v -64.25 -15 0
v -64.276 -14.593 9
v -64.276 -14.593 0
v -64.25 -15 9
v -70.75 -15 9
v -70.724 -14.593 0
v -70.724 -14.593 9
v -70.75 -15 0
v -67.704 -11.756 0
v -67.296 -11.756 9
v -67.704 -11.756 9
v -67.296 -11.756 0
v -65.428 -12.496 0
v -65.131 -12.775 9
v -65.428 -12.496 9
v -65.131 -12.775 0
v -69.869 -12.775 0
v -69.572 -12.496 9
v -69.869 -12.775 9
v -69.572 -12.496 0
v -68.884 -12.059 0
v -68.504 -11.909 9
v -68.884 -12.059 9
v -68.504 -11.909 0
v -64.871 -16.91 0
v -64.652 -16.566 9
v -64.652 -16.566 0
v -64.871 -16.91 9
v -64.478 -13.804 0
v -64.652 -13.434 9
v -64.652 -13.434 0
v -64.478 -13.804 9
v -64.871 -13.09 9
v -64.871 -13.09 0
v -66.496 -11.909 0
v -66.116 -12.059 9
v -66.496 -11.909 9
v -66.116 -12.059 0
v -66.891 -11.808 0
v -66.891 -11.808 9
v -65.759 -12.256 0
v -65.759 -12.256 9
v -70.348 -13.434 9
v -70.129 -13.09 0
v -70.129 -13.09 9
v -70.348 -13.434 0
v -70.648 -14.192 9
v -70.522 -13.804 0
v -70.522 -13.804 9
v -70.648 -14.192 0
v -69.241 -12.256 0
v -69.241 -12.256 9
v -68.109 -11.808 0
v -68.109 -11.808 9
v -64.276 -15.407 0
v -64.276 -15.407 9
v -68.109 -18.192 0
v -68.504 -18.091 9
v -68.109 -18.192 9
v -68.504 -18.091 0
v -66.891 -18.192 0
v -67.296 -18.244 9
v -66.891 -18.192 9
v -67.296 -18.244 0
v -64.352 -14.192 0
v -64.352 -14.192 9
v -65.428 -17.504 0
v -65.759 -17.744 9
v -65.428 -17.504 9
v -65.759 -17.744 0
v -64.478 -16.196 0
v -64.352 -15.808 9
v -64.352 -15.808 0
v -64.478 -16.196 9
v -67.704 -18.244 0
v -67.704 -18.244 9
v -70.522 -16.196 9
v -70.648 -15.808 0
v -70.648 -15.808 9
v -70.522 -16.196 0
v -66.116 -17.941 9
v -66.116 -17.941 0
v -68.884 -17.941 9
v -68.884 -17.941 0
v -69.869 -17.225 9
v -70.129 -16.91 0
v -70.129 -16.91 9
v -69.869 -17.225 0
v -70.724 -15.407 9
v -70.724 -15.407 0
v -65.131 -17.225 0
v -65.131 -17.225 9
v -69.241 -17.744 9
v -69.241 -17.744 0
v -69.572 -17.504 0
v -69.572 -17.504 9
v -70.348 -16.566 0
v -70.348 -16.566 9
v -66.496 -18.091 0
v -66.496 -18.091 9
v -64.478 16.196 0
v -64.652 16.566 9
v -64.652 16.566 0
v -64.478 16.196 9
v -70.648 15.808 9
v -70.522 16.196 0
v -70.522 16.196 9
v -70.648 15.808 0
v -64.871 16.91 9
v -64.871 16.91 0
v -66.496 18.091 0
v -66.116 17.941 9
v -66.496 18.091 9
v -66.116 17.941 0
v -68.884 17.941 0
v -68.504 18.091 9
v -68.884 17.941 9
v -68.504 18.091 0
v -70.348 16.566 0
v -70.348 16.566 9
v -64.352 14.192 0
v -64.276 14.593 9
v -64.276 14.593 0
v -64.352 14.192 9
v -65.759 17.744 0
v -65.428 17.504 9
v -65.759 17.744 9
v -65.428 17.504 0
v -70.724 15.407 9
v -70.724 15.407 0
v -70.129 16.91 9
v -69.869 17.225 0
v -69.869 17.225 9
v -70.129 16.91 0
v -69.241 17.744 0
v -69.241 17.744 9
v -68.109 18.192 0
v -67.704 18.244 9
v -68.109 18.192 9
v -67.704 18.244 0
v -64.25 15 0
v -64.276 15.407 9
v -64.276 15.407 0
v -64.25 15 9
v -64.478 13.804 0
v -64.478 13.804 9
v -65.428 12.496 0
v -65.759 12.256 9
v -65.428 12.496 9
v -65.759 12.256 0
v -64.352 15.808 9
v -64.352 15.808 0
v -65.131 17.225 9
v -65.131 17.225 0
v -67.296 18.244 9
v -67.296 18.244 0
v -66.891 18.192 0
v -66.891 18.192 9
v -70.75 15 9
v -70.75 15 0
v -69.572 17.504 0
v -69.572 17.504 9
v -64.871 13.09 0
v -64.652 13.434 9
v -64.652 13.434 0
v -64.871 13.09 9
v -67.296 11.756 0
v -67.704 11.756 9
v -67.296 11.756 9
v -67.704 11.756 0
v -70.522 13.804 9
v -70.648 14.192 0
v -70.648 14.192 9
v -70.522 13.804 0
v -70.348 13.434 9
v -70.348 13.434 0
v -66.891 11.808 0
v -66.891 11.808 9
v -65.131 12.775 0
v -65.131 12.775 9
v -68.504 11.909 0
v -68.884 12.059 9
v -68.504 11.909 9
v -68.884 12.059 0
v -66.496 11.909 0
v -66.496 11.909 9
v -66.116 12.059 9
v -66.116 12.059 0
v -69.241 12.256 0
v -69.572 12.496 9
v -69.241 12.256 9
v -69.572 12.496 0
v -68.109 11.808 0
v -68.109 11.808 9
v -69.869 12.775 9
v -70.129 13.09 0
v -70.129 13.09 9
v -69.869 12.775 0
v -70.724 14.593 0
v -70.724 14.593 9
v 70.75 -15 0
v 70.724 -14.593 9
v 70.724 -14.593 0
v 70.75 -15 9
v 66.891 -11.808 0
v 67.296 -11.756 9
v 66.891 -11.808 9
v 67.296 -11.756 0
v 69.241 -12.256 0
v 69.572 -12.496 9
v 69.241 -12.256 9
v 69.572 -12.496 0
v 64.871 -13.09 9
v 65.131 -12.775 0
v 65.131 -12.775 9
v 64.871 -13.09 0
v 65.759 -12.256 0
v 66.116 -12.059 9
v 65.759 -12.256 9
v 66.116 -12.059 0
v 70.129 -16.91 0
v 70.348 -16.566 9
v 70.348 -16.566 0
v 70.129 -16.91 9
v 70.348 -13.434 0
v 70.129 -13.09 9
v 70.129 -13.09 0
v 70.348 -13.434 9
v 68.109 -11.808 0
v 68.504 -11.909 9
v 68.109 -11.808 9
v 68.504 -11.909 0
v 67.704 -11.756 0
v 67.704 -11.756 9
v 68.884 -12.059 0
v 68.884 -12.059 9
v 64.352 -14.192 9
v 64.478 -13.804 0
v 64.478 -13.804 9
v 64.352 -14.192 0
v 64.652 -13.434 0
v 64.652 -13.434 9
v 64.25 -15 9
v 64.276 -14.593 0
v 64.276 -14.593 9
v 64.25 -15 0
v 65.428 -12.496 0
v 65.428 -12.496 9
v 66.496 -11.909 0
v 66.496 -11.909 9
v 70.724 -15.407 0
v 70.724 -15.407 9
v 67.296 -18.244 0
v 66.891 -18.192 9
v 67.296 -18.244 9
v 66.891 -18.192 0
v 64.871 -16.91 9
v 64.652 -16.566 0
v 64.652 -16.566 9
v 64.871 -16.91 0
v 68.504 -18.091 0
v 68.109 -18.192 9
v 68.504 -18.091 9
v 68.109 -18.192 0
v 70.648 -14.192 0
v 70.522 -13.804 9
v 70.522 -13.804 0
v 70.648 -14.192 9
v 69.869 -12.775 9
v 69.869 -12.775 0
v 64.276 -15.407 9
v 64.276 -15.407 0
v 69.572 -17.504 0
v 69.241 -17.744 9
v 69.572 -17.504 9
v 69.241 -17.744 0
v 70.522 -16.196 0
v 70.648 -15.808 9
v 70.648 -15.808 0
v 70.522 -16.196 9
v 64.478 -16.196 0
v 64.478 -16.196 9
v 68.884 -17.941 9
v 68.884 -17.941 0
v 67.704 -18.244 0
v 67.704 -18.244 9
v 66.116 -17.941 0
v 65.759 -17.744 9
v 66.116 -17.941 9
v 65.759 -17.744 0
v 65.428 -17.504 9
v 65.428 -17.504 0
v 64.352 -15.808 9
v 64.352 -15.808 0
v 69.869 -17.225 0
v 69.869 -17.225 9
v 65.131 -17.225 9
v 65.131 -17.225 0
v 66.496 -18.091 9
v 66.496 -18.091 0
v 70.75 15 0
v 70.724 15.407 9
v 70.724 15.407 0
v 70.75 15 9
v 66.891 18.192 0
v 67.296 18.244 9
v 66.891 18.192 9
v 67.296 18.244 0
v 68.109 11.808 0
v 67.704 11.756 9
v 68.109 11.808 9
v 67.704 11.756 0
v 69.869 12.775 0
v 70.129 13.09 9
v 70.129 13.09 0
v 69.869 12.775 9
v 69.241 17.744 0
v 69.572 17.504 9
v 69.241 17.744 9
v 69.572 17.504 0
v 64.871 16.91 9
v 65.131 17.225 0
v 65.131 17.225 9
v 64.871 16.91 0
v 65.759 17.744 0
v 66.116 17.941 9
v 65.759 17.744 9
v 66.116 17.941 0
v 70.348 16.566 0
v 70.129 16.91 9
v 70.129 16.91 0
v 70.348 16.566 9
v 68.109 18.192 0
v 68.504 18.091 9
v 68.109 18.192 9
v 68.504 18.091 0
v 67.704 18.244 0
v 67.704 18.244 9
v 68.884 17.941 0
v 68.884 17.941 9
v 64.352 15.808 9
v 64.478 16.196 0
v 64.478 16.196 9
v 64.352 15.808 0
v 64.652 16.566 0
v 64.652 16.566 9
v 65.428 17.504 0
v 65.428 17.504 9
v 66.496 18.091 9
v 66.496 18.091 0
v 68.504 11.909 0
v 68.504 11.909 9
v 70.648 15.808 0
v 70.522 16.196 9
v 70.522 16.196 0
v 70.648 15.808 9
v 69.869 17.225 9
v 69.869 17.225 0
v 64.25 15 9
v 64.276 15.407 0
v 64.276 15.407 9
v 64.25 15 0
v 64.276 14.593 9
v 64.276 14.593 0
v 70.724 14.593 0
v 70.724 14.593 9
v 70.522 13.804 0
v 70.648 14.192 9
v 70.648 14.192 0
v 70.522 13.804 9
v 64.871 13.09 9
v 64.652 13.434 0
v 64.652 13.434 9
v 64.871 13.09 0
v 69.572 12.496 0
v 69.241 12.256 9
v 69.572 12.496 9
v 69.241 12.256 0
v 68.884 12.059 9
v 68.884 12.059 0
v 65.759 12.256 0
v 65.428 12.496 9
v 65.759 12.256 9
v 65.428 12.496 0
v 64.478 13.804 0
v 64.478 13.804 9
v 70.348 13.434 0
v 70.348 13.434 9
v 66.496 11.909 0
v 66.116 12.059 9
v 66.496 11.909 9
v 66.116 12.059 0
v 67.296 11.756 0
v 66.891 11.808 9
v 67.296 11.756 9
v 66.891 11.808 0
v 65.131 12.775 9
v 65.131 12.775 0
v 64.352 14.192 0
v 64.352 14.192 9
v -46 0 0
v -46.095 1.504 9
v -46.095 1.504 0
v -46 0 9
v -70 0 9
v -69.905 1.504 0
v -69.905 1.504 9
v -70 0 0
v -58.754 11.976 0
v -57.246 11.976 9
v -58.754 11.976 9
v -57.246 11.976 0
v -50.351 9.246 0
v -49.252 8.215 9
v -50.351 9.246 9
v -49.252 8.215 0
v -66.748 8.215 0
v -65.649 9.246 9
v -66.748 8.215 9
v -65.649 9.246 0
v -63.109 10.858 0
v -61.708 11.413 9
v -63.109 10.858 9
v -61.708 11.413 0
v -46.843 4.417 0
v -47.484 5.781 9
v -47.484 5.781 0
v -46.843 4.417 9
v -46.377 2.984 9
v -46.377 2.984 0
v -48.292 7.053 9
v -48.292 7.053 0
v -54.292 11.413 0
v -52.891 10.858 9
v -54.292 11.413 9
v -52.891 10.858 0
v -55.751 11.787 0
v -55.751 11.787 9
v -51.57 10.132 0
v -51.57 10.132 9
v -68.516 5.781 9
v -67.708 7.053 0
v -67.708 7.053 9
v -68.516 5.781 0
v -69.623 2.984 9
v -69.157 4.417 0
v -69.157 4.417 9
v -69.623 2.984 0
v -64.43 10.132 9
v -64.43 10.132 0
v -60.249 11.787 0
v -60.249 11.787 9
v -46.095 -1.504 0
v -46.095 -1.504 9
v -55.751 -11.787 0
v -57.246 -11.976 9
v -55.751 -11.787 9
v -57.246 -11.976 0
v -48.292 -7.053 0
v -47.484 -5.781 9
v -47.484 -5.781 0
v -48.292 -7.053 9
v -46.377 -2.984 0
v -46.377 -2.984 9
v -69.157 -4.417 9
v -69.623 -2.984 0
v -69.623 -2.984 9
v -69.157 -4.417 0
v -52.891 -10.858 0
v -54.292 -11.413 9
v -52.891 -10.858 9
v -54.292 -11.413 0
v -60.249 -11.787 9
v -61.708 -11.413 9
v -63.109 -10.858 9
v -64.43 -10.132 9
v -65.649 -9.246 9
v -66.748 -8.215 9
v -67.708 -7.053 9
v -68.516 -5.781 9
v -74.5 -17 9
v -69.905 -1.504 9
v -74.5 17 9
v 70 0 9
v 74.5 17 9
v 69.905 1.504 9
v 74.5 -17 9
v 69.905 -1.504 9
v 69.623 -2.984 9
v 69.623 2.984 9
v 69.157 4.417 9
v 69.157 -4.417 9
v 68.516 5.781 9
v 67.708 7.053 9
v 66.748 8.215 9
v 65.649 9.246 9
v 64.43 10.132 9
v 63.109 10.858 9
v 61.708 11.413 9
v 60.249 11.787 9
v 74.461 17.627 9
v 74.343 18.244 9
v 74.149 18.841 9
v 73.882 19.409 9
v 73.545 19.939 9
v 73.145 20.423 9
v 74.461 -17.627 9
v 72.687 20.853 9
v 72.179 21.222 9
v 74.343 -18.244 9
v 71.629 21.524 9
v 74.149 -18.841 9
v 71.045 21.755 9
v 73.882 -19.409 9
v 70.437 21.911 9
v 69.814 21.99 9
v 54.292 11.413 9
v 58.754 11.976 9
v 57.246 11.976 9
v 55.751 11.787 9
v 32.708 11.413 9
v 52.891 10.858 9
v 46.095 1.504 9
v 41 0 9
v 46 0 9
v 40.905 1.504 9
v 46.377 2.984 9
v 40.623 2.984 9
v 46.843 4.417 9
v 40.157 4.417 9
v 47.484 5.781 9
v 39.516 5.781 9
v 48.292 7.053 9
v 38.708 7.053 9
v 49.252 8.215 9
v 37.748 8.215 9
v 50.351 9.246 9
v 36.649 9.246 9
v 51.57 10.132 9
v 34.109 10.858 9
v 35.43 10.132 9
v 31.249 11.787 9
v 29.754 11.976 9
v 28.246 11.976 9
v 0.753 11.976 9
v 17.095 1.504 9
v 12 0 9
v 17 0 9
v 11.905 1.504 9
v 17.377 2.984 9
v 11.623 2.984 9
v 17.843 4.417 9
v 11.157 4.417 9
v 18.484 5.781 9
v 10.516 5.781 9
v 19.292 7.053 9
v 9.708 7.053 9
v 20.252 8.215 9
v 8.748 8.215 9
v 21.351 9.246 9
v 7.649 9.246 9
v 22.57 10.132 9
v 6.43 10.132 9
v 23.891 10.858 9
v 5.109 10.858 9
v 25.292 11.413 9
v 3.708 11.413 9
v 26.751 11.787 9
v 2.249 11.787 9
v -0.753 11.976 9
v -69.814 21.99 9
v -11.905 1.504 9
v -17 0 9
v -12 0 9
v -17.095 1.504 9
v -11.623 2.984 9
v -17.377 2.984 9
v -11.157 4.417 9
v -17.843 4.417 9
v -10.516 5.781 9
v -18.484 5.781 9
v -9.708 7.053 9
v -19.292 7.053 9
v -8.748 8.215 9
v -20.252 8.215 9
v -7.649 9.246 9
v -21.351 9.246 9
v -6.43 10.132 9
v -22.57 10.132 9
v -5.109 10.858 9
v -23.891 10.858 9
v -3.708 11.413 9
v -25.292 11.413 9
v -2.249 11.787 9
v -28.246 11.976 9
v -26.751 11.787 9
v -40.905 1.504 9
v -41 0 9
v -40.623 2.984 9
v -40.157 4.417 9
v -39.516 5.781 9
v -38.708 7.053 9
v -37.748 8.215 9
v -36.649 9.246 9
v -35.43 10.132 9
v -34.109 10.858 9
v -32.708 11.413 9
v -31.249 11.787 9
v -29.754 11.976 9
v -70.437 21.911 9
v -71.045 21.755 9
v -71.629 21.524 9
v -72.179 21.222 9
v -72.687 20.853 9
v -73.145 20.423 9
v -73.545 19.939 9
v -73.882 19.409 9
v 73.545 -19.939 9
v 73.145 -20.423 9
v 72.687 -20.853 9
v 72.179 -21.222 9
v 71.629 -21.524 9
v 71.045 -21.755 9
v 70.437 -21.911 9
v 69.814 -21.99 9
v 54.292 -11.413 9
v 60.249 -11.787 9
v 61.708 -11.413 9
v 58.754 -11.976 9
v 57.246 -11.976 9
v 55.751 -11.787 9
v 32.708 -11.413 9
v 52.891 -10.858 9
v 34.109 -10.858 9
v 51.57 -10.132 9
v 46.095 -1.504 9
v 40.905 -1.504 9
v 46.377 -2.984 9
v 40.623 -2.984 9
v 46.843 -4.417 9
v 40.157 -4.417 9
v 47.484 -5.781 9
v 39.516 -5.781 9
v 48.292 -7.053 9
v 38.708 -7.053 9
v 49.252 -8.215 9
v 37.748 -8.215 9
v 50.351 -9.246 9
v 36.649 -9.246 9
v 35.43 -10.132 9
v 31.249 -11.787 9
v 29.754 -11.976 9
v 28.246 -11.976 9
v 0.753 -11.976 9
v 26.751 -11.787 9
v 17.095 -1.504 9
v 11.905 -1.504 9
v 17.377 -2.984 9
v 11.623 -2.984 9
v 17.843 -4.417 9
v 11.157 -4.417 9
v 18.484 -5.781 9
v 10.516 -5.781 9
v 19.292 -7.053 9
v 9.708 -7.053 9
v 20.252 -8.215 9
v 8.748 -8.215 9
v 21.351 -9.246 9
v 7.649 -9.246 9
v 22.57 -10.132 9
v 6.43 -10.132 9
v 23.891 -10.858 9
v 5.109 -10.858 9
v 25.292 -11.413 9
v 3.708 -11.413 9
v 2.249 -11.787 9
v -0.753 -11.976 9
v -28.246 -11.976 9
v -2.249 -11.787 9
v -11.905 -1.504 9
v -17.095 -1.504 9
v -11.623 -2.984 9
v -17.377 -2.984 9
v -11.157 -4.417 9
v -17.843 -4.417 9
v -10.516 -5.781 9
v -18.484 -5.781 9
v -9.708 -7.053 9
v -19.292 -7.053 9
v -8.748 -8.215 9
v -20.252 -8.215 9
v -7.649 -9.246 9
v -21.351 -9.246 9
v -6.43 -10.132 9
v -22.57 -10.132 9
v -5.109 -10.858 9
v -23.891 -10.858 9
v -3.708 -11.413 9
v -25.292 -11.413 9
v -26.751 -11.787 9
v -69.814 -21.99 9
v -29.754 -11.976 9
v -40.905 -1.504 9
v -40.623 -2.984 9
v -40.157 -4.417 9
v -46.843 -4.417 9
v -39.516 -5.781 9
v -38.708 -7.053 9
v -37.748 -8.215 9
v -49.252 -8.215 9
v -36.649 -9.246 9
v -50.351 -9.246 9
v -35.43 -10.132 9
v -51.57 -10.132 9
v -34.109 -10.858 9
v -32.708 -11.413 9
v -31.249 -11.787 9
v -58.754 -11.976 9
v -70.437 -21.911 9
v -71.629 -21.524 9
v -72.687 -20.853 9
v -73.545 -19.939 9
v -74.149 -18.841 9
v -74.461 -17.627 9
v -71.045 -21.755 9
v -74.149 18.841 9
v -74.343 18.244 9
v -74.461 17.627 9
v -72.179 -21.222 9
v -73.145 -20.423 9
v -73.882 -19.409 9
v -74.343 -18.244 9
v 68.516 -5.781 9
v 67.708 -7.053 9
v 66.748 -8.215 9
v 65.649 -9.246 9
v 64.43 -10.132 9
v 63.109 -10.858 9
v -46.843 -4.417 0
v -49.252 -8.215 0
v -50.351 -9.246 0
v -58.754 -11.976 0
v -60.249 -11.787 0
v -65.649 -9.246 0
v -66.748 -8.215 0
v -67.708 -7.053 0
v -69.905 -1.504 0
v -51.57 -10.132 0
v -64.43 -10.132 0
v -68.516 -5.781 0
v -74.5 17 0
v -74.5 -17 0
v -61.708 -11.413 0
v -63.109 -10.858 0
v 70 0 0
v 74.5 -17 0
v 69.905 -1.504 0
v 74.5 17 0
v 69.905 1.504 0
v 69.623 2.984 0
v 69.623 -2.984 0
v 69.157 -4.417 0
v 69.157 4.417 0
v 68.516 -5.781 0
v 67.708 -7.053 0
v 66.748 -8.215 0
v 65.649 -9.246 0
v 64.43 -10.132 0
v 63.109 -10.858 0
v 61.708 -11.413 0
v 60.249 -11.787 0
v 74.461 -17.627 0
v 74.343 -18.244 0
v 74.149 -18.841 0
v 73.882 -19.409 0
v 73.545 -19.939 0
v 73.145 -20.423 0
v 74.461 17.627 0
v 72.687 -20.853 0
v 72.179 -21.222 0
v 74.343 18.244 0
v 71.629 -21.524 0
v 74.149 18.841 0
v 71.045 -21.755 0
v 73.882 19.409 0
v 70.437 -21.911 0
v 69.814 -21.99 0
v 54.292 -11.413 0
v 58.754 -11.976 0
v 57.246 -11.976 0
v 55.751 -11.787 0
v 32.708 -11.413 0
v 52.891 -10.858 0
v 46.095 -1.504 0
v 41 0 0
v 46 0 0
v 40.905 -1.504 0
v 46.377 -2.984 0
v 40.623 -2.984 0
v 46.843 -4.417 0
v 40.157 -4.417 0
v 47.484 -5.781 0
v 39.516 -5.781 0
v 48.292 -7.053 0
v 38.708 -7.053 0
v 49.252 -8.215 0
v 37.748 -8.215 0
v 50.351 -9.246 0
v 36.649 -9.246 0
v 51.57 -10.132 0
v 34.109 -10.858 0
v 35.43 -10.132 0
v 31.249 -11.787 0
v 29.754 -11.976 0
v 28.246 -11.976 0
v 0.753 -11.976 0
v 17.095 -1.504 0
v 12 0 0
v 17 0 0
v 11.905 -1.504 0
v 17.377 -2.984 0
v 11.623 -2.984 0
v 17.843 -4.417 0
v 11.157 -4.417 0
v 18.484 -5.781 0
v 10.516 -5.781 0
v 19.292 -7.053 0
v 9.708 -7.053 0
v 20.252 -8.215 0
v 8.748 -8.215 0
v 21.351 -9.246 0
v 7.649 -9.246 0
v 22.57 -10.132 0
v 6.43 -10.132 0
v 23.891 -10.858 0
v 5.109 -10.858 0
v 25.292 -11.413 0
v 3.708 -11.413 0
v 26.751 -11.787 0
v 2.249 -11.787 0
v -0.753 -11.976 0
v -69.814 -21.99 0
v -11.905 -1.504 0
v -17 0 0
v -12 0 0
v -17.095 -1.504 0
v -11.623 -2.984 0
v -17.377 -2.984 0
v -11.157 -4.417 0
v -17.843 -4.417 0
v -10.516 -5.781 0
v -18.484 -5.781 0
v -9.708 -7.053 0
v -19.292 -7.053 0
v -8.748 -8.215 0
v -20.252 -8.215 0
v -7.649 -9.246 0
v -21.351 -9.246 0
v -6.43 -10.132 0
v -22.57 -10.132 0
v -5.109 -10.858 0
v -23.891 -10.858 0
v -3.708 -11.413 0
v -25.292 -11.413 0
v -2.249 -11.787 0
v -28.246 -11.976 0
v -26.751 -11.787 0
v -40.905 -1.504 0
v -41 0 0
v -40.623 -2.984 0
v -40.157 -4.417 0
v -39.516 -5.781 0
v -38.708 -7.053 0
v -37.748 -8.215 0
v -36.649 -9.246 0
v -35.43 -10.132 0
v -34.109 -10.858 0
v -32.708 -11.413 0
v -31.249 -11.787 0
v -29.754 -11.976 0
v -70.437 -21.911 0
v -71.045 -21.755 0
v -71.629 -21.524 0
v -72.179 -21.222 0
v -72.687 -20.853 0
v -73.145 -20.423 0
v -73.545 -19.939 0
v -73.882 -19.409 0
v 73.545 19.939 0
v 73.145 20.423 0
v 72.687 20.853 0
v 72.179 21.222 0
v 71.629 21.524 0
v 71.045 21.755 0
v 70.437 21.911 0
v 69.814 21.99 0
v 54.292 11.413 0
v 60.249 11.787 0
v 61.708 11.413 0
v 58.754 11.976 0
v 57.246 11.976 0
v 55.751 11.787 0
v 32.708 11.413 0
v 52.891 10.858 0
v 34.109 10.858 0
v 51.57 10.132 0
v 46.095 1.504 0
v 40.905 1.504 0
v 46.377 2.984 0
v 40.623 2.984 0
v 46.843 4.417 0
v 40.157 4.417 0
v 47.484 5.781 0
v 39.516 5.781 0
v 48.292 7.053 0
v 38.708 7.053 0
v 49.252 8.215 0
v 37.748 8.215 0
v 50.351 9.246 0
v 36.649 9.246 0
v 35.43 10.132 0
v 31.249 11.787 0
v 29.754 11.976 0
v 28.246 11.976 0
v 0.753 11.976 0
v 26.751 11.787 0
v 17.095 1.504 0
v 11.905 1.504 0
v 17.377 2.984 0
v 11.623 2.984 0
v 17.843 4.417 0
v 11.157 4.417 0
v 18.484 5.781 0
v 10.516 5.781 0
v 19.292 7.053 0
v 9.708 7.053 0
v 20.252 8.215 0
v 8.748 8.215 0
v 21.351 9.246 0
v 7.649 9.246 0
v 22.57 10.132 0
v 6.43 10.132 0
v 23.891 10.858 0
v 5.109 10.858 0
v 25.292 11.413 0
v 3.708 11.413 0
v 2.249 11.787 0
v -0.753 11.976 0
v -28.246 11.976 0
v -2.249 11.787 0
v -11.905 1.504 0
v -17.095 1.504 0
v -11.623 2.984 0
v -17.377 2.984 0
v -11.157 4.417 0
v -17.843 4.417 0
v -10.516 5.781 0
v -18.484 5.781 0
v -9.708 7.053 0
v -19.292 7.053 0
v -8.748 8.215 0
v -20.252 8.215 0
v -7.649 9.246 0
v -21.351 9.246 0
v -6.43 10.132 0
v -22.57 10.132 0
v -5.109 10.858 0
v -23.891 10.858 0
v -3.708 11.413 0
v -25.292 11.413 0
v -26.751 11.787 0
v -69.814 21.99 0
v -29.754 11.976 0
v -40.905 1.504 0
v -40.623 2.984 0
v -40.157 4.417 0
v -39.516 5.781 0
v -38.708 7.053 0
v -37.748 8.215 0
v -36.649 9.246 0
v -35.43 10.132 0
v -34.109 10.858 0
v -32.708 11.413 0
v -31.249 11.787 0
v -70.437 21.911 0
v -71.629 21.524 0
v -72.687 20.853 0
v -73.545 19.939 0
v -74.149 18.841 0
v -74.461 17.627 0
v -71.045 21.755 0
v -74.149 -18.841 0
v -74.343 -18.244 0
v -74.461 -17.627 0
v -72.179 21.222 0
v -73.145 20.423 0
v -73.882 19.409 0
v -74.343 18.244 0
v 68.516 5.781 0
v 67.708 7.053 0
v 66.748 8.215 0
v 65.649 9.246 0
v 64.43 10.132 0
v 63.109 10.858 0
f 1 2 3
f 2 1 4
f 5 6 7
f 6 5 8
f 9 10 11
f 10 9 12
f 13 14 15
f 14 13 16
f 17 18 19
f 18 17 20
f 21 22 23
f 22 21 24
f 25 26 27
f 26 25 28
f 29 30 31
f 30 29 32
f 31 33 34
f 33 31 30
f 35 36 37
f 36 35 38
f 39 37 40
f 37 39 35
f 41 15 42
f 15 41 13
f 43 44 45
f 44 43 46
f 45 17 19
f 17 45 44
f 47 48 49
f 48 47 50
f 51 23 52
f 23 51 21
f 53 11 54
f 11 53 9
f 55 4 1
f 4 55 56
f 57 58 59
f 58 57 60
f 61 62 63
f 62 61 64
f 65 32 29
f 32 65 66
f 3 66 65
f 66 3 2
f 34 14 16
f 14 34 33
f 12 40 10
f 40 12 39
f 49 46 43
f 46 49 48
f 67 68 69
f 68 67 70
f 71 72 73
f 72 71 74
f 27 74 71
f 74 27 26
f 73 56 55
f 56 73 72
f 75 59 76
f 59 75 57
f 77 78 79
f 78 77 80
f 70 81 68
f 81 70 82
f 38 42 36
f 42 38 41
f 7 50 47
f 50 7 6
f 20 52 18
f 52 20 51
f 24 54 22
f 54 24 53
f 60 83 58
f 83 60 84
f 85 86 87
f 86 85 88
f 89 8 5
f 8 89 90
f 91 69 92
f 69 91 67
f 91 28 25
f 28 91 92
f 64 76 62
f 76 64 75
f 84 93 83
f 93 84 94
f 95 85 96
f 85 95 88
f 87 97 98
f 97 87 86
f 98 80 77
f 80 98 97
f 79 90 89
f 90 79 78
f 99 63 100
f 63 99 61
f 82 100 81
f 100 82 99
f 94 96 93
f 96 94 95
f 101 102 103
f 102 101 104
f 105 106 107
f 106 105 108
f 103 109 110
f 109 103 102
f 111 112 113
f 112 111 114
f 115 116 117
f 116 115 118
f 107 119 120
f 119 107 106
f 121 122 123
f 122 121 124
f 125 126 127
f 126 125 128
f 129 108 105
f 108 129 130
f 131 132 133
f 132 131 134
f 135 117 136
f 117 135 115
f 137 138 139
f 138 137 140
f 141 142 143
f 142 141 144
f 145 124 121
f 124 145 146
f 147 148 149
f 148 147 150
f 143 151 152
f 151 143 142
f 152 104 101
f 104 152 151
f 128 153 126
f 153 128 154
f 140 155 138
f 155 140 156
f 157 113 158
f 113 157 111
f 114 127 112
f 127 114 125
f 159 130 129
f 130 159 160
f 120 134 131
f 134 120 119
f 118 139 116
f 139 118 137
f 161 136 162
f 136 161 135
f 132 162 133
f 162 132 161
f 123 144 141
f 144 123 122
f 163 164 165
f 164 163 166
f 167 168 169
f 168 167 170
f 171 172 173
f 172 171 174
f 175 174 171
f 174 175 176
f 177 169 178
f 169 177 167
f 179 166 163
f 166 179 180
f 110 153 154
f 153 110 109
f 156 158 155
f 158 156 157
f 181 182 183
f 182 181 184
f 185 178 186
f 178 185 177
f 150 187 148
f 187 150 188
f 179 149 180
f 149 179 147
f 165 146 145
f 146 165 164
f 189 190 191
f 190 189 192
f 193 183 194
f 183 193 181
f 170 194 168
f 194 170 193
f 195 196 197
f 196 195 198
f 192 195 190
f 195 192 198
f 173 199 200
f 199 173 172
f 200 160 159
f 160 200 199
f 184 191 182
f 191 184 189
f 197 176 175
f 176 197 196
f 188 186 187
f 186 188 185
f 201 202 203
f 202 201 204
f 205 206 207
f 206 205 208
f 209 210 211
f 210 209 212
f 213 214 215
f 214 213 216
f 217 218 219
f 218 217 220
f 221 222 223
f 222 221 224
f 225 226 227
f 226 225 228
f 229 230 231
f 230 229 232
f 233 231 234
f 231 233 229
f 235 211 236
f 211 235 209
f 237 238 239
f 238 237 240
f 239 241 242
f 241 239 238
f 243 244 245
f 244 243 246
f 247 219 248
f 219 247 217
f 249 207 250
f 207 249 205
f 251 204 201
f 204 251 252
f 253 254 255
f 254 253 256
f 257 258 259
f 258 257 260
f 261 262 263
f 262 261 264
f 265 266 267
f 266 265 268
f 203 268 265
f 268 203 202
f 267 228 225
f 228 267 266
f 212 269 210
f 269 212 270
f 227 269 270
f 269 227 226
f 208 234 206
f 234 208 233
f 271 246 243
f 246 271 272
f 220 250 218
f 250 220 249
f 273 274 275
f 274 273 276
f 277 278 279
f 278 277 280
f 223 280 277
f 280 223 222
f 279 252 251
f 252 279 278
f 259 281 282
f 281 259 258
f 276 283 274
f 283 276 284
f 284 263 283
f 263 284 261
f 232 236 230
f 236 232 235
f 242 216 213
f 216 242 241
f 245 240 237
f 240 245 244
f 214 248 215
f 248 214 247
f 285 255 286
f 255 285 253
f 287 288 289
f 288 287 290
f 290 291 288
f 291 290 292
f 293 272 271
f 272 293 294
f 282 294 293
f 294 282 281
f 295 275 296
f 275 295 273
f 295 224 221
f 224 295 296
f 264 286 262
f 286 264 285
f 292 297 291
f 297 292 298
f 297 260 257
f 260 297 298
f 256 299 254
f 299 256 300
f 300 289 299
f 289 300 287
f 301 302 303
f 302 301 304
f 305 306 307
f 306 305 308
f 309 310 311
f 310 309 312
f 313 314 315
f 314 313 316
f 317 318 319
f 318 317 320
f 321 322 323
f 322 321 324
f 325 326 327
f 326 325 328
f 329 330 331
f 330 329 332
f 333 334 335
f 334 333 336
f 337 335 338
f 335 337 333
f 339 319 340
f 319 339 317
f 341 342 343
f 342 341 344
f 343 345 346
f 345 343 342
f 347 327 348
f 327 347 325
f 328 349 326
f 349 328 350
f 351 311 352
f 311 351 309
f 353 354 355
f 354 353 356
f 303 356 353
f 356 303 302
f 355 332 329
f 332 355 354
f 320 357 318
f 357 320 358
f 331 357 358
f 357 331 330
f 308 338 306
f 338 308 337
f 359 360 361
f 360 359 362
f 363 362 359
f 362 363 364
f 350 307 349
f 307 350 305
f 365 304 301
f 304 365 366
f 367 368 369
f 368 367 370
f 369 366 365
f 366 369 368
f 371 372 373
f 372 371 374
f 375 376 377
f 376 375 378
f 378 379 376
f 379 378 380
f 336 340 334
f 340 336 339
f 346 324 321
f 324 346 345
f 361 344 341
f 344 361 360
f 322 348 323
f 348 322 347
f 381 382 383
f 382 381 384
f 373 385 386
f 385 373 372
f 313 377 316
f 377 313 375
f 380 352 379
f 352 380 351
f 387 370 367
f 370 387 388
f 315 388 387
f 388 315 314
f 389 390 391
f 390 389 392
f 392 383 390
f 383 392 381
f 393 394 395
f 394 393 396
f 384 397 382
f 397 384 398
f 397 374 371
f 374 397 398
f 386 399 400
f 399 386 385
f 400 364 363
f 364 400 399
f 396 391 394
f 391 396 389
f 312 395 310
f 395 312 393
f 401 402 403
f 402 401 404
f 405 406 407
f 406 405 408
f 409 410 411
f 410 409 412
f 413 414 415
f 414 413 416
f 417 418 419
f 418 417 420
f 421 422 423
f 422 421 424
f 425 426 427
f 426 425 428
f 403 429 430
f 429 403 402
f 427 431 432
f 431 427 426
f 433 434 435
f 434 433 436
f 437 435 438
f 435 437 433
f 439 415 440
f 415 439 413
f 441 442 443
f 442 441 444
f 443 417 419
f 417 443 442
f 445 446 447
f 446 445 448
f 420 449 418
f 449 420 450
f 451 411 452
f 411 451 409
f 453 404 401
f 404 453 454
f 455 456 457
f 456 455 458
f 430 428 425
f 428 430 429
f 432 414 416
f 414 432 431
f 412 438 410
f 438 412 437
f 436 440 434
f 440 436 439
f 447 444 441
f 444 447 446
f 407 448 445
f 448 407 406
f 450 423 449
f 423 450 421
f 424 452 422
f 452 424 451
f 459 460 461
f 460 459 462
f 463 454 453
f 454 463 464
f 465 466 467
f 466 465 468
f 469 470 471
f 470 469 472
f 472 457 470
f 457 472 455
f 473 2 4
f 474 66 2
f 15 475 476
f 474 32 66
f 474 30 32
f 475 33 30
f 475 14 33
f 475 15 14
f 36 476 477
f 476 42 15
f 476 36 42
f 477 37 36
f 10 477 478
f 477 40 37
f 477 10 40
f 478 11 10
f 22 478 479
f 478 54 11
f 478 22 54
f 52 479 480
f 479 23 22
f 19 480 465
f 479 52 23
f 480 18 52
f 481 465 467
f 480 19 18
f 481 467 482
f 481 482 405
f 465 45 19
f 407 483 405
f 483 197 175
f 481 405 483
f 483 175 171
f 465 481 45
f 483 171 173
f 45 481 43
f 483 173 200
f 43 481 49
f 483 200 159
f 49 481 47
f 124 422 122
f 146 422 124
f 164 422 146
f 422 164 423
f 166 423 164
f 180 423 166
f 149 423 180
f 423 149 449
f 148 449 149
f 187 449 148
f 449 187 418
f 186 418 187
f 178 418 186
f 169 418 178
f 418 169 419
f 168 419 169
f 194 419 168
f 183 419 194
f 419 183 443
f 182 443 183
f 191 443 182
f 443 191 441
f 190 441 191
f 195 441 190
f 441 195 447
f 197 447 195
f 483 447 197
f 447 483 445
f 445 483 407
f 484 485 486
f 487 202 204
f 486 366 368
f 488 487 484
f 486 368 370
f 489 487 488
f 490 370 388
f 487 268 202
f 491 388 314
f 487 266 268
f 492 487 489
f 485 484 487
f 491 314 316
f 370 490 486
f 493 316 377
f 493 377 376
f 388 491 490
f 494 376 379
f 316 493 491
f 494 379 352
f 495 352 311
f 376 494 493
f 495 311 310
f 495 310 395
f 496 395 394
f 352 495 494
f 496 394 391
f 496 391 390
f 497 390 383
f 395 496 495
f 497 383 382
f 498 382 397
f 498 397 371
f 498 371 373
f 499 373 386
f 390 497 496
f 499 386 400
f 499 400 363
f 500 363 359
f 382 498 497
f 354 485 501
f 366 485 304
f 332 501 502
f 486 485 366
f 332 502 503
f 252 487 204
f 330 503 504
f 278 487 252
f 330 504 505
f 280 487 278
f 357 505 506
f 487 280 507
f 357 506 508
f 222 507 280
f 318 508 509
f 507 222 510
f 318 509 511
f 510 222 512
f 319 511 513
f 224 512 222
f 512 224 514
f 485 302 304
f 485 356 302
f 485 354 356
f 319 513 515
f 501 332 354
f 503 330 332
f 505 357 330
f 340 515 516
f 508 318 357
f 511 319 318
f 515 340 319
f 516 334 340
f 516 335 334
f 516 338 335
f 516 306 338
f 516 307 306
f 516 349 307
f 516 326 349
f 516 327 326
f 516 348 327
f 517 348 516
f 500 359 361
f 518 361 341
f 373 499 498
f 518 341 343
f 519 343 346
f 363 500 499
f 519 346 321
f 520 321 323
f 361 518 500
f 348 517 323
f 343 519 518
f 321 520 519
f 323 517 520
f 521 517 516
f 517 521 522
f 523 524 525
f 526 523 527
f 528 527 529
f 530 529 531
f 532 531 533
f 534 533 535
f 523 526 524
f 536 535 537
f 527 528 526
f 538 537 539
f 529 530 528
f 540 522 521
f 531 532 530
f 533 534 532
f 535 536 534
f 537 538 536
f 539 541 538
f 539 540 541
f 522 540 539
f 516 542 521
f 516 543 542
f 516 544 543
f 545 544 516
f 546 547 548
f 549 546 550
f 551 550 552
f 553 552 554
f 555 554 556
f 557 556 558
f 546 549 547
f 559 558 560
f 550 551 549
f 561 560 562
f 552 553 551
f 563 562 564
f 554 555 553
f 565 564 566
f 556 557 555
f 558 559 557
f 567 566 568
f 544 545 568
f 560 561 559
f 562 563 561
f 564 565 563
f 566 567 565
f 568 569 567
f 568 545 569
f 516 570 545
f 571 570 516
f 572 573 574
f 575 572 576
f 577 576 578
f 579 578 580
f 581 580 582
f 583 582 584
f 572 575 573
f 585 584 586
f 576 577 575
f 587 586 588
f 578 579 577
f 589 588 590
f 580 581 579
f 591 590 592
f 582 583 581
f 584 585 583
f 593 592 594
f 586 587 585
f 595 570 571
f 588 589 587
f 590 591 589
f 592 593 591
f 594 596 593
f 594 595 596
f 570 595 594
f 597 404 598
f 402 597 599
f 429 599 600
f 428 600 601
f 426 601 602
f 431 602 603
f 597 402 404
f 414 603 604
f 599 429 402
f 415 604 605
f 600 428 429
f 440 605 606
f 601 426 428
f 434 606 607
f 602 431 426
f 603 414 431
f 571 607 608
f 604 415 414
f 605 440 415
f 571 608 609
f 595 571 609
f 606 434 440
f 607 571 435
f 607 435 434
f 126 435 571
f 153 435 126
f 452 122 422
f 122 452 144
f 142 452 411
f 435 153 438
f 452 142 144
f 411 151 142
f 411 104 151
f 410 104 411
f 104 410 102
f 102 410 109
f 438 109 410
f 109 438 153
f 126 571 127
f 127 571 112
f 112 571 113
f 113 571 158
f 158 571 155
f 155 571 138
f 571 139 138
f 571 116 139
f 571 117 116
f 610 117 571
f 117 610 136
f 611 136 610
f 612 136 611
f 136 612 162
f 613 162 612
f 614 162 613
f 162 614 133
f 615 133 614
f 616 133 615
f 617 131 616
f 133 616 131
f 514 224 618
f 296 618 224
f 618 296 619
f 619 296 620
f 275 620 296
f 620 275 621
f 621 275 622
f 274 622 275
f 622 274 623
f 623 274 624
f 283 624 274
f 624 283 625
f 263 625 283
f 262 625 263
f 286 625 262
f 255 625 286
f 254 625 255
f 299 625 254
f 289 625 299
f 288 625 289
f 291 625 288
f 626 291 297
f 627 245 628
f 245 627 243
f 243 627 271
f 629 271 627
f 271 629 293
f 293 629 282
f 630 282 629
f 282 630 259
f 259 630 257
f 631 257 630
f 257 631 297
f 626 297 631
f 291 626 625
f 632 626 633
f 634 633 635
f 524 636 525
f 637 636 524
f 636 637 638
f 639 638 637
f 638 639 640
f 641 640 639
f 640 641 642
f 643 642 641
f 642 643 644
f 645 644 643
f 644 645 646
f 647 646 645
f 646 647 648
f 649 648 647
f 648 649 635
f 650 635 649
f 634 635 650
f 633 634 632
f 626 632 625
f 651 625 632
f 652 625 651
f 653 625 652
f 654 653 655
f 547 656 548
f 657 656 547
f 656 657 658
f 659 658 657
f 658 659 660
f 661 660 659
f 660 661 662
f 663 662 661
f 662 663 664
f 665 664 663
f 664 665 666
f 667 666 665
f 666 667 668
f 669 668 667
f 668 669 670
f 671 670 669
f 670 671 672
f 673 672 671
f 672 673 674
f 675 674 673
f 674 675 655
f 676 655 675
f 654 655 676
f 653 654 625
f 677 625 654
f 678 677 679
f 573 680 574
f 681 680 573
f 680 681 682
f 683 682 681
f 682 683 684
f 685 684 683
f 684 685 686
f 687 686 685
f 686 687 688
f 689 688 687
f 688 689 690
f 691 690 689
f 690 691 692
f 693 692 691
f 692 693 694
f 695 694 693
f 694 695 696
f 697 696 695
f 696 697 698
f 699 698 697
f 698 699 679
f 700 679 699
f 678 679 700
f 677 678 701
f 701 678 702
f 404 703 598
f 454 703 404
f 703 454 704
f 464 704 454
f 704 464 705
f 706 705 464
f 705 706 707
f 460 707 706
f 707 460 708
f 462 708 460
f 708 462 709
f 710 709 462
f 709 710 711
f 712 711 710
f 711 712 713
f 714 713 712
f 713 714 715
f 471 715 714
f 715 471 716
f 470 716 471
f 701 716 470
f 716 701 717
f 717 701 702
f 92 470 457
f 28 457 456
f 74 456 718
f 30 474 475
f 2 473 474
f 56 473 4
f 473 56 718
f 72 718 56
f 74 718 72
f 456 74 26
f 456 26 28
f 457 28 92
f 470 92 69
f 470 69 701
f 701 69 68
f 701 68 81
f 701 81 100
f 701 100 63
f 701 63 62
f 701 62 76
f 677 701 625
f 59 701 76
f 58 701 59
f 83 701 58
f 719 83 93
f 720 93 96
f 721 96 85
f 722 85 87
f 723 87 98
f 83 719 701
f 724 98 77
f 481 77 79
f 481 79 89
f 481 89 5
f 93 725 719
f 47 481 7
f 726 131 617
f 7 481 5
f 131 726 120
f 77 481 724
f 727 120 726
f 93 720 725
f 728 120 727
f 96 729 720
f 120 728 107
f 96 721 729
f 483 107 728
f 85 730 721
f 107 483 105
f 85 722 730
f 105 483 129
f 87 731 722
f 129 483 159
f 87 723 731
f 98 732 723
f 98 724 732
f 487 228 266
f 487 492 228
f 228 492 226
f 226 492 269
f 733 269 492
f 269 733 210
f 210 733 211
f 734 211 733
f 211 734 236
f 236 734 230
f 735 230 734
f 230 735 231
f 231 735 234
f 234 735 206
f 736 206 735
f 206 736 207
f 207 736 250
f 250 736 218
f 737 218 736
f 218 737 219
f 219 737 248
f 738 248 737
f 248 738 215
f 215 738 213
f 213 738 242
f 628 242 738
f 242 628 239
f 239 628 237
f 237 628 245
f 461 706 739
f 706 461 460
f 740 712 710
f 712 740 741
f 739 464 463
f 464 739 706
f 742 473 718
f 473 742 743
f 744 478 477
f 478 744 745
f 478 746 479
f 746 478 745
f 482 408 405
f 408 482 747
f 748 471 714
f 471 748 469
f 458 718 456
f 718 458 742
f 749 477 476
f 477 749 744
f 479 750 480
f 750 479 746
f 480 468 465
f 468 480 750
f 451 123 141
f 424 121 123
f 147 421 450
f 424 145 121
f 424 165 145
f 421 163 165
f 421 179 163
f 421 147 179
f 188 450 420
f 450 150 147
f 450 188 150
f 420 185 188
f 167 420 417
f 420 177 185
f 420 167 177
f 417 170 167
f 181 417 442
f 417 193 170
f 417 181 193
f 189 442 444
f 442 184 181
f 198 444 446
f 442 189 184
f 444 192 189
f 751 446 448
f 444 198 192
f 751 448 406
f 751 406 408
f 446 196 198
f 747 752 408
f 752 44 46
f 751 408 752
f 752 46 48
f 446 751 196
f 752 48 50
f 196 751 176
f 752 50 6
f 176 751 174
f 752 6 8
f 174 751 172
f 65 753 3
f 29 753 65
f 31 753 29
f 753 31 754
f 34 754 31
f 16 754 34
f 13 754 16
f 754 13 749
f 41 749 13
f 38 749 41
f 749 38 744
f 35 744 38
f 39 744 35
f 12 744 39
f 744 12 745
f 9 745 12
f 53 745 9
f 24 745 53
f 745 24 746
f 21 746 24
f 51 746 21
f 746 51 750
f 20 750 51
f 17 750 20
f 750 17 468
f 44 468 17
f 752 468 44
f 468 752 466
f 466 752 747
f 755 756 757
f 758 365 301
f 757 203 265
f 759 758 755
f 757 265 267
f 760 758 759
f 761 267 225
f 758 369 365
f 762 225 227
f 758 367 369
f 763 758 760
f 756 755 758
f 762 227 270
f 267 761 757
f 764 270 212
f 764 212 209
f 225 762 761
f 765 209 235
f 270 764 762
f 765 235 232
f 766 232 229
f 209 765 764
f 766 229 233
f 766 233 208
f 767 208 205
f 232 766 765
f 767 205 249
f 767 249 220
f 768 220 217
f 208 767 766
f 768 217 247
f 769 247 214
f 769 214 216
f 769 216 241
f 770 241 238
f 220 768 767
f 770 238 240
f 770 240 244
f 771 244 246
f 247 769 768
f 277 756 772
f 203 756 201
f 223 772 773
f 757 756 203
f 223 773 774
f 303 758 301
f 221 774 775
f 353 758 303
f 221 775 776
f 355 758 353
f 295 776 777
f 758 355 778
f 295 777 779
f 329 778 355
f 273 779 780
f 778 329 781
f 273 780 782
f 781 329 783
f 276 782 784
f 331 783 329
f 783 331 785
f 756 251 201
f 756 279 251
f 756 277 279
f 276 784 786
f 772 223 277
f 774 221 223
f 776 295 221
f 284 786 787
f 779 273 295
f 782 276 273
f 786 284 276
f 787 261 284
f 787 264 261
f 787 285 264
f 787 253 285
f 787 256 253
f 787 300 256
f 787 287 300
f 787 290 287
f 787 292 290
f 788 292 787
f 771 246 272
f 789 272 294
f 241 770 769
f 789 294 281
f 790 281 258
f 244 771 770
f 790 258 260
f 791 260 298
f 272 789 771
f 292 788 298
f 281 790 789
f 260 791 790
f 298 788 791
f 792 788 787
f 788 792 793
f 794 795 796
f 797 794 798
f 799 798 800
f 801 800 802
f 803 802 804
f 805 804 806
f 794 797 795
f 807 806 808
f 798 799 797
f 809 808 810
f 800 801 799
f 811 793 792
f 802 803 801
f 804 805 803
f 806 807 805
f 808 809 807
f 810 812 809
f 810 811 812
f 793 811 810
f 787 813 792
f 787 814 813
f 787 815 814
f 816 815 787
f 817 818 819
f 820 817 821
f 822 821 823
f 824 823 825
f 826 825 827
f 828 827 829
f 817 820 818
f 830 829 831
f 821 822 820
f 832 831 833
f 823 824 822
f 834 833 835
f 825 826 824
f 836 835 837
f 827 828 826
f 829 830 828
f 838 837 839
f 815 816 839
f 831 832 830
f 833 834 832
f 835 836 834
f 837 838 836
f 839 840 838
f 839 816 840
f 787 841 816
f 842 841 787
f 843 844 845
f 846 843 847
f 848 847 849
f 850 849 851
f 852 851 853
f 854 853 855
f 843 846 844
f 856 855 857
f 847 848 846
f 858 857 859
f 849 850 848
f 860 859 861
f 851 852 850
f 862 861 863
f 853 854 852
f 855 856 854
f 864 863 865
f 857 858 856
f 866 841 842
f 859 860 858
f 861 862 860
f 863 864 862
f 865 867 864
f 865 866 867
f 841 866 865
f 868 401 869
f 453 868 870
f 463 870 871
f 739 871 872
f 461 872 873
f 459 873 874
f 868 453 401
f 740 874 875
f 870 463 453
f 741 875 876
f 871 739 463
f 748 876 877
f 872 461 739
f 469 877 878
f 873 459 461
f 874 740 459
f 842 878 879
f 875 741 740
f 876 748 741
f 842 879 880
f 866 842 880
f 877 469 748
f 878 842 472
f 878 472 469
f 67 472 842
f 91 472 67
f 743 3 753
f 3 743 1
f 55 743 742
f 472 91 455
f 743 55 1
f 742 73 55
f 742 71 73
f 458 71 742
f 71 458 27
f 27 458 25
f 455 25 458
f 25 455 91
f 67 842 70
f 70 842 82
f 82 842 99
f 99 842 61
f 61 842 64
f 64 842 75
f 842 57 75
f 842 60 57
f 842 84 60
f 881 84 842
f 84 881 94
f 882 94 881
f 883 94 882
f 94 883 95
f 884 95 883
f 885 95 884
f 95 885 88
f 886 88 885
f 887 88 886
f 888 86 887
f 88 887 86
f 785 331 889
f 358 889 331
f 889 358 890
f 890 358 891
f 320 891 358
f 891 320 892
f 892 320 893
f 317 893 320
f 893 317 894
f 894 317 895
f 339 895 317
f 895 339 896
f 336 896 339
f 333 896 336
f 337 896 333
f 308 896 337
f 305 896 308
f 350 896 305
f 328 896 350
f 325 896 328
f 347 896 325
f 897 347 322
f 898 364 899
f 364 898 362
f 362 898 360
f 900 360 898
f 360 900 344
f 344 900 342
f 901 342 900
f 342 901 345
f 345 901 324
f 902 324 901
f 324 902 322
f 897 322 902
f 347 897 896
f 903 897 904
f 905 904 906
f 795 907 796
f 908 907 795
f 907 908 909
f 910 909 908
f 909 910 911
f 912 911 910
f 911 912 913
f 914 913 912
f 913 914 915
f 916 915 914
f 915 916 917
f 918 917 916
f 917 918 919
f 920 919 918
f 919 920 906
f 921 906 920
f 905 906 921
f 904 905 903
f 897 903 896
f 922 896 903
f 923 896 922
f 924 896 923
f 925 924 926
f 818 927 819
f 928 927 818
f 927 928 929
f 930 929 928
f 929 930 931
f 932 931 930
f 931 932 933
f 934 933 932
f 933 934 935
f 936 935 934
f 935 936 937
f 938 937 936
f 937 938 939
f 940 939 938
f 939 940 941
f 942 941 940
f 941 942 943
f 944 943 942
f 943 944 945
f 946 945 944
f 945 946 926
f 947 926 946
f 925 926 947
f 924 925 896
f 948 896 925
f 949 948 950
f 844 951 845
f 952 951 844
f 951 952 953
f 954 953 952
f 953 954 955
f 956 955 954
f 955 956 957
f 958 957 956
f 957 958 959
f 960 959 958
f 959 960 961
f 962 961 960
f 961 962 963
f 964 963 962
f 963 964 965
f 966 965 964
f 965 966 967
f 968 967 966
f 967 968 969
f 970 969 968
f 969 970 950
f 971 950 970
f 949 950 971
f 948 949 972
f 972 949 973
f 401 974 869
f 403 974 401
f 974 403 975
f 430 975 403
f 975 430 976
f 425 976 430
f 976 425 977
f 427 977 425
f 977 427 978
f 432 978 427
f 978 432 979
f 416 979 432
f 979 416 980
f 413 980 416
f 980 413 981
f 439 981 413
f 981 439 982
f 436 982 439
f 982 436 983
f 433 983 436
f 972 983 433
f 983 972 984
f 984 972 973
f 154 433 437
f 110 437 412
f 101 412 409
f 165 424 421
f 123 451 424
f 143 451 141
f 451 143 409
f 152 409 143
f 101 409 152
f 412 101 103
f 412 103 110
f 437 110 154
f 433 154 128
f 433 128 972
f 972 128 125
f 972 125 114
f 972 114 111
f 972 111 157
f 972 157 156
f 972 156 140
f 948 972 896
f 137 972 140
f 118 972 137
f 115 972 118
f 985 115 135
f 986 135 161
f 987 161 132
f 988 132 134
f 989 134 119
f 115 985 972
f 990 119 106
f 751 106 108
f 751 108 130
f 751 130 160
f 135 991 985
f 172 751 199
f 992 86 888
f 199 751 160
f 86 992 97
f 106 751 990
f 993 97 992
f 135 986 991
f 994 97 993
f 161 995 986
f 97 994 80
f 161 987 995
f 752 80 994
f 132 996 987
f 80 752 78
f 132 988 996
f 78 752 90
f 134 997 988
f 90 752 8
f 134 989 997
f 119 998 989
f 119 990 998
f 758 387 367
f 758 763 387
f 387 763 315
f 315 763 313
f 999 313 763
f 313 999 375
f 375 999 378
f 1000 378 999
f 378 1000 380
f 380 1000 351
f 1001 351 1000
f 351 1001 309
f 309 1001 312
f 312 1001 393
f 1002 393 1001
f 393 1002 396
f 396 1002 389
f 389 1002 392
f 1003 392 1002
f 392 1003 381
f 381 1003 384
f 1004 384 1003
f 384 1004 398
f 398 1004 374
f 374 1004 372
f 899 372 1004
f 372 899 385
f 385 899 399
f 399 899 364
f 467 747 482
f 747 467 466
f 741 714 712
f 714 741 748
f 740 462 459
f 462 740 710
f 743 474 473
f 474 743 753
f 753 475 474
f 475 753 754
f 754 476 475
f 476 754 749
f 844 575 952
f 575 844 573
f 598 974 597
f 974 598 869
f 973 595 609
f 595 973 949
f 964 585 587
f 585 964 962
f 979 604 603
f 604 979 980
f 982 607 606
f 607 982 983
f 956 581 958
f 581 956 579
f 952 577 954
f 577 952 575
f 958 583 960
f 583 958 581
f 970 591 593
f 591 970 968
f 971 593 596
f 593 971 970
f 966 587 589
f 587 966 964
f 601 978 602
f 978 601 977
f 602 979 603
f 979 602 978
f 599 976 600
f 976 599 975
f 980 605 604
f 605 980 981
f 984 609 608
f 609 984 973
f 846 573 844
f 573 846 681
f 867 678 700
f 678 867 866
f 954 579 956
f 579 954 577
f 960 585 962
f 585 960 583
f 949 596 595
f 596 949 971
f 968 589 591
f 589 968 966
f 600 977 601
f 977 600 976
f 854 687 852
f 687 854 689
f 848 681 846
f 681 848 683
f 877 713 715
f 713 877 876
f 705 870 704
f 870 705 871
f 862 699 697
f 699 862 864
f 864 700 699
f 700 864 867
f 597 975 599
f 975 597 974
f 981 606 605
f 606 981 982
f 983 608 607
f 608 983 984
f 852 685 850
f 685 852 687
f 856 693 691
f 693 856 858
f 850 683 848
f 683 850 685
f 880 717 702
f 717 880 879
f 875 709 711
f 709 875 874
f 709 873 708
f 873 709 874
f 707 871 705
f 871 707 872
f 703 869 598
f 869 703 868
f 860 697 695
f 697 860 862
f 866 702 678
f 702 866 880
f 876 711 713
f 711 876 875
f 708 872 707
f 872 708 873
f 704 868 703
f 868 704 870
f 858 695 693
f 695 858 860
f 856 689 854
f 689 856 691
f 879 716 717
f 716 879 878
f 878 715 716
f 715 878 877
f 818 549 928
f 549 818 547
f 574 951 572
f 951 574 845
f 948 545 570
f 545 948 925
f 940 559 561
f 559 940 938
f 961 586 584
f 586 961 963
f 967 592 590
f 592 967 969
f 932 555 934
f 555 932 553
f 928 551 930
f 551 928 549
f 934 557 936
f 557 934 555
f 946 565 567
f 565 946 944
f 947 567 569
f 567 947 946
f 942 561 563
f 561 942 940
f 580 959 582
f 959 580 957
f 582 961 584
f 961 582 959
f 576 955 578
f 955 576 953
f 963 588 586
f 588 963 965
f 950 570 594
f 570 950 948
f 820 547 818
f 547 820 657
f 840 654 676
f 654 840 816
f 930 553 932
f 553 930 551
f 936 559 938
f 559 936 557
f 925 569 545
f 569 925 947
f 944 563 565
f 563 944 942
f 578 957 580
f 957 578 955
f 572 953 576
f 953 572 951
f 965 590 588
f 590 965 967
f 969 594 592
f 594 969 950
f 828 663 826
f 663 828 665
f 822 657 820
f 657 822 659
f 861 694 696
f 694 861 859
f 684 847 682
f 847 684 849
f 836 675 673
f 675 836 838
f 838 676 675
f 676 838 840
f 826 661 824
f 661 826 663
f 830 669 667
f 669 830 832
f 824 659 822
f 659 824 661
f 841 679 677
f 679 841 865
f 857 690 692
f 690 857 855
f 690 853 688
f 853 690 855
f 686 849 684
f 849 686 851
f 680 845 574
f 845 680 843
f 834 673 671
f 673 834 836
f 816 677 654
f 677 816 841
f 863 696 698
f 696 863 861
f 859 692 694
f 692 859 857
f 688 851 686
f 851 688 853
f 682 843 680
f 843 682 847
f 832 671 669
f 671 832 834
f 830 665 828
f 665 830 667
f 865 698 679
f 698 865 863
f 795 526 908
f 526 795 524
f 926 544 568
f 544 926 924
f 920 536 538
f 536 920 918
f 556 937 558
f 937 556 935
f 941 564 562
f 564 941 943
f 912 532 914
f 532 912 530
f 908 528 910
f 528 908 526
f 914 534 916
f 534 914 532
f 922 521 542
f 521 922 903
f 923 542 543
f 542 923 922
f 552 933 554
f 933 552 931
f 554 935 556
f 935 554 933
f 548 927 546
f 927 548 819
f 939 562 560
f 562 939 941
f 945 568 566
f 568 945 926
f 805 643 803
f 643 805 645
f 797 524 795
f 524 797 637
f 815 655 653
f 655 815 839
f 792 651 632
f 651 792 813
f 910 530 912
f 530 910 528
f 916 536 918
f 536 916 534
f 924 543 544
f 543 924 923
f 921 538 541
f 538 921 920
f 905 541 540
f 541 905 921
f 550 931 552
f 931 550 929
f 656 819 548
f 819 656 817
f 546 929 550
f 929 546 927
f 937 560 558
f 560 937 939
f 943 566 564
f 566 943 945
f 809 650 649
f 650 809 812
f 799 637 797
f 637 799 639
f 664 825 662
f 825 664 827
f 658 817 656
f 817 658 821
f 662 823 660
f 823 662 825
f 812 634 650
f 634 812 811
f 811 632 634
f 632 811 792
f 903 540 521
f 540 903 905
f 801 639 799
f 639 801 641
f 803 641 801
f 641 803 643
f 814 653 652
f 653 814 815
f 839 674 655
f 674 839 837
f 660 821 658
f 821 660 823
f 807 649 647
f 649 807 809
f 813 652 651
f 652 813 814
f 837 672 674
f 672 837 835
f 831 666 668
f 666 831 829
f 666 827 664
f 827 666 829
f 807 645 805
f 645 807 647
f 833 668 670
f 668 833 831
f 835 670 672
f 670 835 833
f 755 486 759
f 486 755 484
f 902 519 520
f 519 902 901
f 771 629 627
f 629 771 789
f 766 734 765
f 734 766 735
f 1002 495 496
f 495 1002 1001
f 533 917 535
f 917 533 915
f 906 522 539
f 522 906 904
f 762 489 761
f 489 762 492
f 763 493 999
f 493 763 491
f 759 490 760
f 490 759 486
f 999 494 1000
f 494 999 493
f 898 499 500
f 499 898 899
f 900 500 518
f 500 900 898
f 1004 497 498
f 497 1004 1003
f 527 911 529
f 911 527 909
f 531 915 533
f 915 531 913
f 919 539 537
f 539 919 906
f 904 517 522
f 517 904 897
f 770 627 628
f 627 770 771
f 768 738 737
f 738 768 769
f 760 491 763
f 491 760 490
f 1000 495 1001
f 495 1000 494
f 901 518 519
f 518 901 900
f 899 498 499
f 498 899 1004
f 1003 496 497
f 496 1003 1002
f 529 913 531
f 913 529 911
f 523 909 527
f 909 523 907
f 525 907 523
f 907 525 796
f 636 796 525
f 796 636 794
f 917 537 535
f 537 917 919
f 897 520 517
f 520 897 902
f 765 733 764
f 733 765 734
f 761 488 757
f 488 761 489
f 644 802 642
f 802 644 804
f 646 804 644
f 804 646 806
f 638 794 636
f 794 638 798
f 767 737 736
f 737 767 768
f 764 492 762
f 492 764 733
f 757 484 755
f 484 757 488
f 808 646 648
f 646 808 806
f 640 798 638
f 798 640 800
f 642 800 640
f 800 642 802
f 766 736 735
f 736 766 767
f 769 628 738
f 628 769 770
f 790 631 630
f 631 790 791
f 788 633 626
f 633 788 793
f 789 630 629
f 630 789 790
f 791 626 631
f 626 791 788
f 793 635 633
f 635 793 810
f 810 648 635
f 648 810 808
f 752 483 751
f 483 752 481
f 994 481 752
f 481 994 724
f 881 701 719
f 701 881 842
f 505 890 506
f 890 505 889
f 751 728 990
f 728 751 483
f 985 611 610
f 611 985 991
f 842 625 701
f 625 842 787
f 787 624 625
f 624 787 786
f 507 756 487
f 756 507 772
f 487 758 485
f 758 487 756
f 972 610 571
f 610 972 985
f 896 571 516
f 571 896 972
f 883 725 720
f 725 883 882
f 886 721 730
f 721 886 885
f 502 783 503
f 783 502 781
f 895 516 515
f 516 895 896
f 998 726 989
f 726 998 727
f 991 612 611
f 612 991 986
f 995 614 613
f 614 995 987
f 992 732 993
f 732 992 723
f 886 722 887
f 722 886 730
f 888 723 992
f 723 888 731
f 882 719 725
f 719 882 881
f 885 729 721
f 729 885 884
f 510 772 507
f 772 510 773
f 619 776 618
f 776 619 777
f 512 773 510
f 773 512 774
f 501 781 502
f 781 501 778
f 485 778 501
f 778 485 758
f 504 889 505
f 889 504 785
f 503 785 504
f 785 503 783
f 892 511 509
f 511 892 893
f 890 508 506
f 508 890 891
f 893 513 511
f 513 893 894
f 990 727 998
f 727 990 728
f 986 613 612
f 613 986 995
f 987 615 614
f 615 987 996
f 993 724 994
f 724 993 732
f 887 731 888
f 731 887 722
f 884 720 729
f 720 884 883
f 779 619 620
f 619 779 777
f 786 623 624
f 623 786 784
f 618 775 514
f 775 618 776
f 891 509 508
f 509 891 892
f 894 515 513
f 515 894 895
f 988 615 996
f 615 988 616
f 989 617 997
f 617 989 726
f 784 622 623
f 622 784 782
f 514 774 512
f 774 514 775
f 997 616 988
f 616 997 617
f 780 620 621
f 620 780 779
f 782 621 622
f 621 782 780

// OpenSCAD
$fn = 50;


difference() {
	union() {
		hull() {
			translate(v = [-69.5000000000, 17.0000000000, 0]) {
				cylinder(h = 9, r = 5);
			}
			translate(v = [69.5000000000, 17.0000000000, 0]) {
				cylinder(h = 9, r = 5);
			}
			translate(v = [-69.5000000000, -17.0000000000, 0]) {
				cylinder(h = 9, r = 5);
			}
			translate(v = [69.5000000000, -17.0000000000, 0]) {
				cylinder(h = 9, r = 5);
			}
		}
	}
	union() {
		#translate(v = [-67.5000000000, -15.0000000000, -100.0000000000]) {
			cylinder(h = 200, r = 3.2500000000);
		}
		#translate(v = [-67.5000000000, 15.0000000000, -100.0000000000]) {
			cylinder(h = 200, r = 3.2500000000);
		}
		#translate(v = [67.5000000000, -15.0000000000, -100.0000000000]) {
			cylinder(h = 200, r = 3.2500000000);
		}
		#translate(v = [67.5000000000, 15.0000000000, -100.0000000000]) {
			cylinder(h = 200, r = 3.2500000000);
		}
		#translate(v = [-58.0000000000, 0, 0]) {
			cylinder(h = 9, r = 12.0000000000);
		}
		#translate(v = [-29.0000000000, 0, 0]) {
			cylinder(h = 9, r = 12.0000000000);
		}
		#cylinder(h = 9, r = 12.0000000000);
		#translate(v = [29.0000000000, 0, 0]) {
			cylinder(h = 9, r = 12.0000000000);
		}
		#translate(v = [58.0000000000, 0, 0]) {
			cylinder(h = 9, r = 12.0000000000);
		}
	}
}
